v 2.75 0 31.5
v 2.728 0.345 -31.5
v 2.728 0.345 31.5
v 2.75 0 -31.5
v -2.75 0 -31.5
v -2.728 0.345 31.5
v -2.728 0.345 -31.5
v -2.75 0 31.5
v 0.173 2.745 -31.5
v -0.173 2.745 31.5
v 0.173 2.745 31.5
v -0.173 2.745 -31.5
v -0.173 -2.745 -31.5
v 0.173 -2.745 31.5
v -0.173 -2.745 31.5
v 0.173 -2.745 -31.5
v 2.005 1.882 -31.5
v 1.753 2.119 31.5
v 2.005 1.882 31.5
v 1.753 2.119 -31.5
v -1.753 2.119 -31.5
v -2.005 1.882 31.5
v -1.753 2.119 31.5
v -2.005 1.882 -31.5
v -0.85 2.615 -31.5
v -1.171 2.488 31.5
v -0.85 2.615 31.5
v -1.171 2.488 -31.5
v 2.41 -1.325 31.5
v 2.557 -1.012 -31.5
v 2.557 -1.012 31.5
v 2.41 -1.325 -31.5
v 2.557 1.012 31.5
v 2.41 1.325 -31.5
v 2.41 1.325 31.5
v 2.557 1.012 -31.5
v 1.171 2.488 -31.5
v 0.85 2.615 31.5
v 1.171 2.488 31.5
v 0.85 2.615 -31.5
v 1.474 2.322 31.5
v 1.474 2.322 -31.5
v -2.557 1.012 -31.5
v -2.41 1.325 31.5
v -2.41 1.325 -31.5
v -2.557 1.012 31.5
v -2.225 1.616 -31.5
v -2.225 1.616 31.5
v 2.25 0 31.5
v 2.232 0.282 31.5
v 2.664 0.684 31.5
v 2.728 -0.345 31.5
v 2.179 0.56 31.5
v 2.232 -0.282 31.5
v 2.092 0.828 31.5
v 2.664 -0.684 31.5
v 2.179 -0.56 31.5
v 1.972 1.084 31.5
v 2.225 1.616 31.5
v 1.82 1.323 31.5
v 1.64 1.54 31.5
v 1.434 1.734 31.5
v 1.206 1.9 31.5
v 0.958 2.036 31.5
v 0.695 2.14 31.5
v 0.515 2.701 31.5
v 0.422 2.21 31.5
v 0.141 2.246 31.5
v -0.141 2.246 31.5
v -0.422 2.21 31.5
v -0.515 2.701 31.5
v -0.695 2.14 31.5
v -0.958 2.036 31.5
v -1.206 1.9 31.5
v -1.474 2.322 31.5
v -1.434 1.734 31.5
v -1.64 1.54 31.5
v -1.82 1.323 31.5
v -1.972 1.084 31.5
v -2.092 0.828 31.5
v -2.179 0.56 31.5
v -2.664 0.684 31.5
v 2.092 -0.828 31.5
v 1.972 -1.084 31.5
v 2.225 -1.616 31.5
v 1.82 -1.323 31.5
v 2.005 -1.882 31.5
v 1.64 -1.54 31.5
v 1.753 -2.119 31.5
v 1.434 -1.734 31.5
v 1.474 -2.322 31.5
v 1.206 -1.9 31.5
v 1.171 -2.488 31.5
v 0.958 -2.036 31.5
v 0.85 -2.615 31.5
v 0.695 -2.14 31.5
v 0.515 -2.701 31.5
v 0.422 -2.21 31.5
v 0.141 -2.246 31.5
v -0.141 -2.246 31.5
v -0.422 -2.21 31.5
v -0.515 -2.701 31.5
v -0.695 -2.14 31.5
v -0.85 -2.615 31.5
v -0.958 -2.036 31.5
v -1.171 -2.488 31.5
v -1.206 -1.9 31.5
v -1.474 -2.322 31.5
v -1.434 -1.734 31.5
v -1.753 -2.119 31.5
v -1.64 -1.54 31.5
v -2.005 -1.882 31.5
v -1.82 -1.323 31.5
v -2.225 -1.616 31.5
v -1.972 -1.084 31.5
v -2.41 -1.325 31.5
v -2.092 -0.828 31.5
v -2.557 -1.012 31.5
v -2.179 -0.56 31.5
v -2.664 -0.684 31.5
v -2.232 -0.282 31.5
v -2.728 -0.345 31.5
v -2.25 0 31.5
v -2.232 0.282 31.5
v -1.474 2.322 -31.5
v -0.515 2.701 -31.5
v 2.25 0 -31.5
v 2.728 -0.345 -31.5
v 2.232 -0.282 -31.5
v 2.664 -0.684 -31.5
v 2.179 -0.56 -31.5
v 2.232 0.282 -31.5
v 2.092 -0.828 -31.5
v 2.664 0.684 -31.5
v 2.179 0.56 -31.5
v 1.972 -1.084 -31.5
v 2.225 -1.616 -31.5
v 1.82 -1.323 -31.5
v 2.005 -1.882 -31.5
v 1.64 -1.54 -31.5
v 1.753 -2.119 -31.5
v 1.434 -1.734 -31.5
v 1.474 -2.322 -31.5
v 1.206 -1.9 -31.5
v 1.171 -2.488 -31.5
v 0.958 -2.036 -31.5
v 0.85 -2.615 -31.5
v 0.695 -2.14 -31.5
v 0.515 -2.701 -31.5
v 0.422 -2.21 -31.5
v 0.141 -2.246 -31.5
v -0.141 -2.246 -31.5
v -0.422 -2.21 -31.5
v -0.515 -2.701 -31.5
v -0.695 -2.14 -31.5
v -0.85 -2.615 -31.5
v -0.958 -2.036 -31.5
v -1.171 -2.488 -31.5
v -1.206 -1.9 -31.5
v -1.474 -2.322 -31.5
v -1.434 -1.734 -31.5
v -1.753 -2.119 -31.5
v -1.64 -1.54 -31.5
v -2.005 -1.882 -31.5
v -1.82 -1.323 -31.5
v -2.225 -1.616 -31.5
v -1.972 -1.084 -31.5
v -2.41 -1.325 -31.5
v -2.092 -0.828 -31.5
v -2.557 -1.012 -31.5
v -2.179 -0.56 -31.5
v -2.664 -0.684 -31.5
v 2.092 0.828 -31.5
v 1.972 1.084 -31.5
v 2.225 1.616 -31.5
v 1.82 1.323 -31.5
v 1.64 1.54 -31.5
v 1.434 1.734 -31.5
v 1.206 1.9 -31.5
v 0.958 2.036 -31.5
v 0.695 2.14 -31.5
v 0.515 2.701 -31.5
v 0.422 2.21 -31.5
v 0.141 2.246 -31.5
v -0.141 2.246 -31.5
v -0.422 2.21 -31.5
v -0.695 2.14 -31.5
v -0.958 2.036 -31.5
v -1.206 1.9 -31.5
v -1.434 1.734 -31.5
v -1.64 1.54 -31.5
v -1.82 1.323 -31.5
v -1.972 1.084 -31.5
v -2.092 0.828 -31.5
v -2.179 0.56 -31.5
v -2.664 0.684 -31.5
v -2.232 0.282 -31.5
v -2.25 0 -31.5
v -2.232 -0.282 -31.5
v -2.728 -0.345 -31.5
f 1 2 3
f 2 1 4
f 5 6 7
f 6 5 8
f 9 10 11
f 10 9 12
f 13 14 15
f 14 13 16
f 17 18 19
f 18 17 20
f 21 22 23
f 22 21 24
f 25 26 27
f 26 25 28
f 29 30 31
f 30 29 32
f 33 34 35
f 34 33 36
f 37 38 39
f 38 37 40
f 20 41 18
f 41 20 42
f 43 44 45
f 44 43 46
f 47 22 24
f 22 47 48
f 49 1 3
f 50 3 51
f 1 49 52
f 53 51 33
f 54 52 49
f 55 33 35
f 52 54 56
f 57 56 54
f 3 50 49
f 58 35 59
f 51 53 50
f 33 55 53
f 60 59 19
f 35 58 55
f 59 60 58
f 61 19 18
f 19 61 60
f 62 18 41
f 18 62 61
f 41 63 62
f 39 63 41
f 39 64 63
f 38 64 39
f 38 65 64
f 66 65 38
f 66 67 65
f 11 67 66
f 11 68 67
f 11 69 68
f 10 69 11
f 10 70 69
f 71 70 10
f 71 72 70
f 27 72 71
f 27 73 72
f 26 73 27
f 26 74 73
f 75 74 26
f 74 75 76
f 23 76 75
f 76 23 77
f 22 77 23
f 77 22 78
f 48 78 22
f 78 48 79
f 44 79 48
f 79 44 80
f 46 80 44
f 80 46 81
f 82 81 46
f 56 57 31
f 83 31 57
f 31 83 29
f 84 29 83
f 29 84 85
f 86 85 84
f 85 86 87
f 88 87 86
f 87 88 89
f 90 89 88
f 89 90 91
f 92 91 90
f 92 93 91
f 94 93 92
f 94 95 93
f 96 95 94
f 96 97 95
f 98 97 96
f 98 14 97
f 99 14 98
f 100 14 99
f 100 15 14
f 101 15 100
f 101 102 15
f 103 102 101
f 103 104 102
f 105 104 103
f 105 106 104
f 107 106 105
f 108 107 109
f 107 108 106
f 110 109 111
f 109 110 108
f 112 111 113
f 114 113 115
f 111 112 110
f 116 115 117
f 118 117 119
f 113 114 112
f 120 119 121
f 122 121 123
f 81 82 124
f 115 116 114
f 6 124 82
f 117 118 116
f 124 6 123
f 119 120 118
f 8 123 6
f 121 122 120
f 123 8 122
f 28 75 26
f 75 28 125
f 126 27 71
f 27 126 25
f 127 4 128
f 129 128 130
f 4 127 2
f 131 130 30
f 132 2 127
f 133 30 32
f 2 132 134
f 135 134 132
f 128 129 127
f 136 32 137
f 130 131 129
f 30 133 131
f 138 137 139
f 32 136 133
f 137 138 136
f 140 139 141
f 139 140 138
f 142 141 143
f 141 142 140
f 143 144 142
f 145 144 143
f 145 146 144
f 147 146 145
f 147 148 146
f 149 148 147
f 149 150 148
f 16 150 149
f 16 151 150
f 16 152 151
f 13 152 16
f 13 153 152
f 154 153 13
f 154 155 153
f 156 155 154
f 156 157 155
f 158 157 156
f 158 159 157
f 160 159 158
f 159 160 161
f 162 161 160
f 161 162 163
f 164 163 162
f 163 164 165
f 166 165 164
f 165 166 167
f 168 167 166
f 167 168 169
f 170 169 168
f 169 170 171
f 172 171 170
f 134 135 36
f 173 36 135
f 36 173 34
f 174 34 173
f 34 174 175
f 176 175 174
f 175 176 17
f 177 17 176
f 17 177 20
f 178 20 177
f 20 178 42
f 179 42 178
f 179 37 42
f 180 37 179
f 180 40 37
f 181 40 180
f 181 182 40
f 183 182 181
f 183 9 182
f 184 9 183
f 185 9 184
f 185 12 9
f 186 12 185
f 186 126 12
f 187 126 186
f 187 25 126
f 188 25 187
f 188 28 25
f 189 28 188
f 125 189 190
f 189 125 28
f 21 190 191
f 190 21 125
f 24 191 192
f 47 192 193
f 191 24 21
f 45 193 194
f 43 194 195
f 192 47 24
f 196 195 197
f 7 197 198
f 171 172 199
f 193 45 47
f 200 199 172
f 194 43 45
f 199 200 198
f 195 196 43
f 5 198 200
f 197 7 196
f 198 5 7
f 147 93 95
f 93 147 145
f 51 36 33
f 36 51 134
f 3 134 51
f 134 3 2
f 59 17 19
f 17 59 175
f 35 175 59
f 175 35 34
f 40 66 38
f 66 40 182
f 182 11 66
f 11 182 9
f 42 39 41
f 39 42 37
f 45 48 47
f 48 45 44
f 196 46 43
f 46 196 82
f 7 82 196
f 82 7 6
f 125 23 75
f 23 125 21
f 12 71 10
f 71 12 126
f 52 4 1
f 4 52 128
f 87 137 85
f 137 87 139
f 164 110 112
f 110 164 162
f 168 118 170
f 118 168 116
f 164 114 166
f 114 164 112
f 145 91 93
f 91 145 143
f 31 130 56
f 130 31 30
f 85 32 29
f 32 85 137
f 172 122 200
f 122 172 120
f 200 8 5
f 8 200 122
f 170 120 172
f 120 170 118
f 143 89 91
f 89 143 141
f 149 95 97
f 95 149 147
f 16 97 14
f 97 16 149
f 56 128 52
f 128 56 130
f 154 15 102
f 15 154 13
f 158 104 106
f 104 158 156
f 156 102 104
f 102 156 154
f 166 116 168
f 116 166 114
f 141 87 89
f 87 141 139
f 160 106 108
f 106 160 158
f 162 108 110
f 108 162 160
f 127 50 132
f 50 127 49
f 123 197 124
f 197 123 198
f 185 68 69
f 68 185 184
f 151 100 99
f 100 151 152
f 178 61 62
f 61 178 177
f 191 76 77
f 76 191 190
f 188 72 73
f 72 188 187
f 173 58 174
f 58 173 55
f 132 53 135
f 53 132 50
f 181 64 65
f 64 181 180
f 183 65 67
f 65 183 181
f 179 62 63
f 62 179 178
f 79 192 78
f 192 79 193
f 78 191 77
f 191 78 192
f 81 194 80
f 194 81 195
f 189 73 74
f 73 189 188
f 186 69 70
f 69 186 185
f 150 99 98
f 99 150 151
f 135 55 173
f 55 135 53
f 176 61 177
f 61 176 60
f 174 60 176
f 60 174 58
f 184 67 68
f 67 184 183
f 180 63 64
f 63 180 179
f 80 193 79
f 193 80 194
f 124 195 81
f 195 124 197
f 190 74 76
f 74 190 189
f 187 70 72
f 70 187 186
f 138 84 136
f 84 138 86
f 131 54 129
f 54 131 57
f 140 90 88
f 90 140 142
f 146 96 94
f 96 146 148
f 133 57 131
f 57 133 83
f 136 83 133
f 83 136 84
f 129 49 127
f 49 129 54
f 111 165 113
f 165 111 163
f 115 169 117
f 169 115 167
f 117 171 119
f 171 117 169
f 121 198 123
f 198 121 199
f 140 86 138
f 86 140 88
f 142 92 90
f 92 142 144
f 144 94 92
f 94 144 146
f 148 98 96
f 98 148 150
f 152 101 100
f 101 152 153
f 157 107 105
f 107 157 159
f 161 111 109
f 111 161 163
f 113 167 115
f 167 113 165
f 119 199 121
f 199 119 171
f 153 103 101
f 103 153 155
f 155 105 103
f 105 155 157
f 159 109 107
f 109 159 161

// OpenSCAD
$fn = 50;


difference() {
	union() {
		translate(v = [0, 0, -31.5000000000]) {
			cylinder(h = 63, r = 2.7500000000);
		}
	}
	union() {
		translate(v = [0, 0, -100.0000000000]) {
			cylinder(h = 200, r = 2.2500000000);
		}
	}
}
